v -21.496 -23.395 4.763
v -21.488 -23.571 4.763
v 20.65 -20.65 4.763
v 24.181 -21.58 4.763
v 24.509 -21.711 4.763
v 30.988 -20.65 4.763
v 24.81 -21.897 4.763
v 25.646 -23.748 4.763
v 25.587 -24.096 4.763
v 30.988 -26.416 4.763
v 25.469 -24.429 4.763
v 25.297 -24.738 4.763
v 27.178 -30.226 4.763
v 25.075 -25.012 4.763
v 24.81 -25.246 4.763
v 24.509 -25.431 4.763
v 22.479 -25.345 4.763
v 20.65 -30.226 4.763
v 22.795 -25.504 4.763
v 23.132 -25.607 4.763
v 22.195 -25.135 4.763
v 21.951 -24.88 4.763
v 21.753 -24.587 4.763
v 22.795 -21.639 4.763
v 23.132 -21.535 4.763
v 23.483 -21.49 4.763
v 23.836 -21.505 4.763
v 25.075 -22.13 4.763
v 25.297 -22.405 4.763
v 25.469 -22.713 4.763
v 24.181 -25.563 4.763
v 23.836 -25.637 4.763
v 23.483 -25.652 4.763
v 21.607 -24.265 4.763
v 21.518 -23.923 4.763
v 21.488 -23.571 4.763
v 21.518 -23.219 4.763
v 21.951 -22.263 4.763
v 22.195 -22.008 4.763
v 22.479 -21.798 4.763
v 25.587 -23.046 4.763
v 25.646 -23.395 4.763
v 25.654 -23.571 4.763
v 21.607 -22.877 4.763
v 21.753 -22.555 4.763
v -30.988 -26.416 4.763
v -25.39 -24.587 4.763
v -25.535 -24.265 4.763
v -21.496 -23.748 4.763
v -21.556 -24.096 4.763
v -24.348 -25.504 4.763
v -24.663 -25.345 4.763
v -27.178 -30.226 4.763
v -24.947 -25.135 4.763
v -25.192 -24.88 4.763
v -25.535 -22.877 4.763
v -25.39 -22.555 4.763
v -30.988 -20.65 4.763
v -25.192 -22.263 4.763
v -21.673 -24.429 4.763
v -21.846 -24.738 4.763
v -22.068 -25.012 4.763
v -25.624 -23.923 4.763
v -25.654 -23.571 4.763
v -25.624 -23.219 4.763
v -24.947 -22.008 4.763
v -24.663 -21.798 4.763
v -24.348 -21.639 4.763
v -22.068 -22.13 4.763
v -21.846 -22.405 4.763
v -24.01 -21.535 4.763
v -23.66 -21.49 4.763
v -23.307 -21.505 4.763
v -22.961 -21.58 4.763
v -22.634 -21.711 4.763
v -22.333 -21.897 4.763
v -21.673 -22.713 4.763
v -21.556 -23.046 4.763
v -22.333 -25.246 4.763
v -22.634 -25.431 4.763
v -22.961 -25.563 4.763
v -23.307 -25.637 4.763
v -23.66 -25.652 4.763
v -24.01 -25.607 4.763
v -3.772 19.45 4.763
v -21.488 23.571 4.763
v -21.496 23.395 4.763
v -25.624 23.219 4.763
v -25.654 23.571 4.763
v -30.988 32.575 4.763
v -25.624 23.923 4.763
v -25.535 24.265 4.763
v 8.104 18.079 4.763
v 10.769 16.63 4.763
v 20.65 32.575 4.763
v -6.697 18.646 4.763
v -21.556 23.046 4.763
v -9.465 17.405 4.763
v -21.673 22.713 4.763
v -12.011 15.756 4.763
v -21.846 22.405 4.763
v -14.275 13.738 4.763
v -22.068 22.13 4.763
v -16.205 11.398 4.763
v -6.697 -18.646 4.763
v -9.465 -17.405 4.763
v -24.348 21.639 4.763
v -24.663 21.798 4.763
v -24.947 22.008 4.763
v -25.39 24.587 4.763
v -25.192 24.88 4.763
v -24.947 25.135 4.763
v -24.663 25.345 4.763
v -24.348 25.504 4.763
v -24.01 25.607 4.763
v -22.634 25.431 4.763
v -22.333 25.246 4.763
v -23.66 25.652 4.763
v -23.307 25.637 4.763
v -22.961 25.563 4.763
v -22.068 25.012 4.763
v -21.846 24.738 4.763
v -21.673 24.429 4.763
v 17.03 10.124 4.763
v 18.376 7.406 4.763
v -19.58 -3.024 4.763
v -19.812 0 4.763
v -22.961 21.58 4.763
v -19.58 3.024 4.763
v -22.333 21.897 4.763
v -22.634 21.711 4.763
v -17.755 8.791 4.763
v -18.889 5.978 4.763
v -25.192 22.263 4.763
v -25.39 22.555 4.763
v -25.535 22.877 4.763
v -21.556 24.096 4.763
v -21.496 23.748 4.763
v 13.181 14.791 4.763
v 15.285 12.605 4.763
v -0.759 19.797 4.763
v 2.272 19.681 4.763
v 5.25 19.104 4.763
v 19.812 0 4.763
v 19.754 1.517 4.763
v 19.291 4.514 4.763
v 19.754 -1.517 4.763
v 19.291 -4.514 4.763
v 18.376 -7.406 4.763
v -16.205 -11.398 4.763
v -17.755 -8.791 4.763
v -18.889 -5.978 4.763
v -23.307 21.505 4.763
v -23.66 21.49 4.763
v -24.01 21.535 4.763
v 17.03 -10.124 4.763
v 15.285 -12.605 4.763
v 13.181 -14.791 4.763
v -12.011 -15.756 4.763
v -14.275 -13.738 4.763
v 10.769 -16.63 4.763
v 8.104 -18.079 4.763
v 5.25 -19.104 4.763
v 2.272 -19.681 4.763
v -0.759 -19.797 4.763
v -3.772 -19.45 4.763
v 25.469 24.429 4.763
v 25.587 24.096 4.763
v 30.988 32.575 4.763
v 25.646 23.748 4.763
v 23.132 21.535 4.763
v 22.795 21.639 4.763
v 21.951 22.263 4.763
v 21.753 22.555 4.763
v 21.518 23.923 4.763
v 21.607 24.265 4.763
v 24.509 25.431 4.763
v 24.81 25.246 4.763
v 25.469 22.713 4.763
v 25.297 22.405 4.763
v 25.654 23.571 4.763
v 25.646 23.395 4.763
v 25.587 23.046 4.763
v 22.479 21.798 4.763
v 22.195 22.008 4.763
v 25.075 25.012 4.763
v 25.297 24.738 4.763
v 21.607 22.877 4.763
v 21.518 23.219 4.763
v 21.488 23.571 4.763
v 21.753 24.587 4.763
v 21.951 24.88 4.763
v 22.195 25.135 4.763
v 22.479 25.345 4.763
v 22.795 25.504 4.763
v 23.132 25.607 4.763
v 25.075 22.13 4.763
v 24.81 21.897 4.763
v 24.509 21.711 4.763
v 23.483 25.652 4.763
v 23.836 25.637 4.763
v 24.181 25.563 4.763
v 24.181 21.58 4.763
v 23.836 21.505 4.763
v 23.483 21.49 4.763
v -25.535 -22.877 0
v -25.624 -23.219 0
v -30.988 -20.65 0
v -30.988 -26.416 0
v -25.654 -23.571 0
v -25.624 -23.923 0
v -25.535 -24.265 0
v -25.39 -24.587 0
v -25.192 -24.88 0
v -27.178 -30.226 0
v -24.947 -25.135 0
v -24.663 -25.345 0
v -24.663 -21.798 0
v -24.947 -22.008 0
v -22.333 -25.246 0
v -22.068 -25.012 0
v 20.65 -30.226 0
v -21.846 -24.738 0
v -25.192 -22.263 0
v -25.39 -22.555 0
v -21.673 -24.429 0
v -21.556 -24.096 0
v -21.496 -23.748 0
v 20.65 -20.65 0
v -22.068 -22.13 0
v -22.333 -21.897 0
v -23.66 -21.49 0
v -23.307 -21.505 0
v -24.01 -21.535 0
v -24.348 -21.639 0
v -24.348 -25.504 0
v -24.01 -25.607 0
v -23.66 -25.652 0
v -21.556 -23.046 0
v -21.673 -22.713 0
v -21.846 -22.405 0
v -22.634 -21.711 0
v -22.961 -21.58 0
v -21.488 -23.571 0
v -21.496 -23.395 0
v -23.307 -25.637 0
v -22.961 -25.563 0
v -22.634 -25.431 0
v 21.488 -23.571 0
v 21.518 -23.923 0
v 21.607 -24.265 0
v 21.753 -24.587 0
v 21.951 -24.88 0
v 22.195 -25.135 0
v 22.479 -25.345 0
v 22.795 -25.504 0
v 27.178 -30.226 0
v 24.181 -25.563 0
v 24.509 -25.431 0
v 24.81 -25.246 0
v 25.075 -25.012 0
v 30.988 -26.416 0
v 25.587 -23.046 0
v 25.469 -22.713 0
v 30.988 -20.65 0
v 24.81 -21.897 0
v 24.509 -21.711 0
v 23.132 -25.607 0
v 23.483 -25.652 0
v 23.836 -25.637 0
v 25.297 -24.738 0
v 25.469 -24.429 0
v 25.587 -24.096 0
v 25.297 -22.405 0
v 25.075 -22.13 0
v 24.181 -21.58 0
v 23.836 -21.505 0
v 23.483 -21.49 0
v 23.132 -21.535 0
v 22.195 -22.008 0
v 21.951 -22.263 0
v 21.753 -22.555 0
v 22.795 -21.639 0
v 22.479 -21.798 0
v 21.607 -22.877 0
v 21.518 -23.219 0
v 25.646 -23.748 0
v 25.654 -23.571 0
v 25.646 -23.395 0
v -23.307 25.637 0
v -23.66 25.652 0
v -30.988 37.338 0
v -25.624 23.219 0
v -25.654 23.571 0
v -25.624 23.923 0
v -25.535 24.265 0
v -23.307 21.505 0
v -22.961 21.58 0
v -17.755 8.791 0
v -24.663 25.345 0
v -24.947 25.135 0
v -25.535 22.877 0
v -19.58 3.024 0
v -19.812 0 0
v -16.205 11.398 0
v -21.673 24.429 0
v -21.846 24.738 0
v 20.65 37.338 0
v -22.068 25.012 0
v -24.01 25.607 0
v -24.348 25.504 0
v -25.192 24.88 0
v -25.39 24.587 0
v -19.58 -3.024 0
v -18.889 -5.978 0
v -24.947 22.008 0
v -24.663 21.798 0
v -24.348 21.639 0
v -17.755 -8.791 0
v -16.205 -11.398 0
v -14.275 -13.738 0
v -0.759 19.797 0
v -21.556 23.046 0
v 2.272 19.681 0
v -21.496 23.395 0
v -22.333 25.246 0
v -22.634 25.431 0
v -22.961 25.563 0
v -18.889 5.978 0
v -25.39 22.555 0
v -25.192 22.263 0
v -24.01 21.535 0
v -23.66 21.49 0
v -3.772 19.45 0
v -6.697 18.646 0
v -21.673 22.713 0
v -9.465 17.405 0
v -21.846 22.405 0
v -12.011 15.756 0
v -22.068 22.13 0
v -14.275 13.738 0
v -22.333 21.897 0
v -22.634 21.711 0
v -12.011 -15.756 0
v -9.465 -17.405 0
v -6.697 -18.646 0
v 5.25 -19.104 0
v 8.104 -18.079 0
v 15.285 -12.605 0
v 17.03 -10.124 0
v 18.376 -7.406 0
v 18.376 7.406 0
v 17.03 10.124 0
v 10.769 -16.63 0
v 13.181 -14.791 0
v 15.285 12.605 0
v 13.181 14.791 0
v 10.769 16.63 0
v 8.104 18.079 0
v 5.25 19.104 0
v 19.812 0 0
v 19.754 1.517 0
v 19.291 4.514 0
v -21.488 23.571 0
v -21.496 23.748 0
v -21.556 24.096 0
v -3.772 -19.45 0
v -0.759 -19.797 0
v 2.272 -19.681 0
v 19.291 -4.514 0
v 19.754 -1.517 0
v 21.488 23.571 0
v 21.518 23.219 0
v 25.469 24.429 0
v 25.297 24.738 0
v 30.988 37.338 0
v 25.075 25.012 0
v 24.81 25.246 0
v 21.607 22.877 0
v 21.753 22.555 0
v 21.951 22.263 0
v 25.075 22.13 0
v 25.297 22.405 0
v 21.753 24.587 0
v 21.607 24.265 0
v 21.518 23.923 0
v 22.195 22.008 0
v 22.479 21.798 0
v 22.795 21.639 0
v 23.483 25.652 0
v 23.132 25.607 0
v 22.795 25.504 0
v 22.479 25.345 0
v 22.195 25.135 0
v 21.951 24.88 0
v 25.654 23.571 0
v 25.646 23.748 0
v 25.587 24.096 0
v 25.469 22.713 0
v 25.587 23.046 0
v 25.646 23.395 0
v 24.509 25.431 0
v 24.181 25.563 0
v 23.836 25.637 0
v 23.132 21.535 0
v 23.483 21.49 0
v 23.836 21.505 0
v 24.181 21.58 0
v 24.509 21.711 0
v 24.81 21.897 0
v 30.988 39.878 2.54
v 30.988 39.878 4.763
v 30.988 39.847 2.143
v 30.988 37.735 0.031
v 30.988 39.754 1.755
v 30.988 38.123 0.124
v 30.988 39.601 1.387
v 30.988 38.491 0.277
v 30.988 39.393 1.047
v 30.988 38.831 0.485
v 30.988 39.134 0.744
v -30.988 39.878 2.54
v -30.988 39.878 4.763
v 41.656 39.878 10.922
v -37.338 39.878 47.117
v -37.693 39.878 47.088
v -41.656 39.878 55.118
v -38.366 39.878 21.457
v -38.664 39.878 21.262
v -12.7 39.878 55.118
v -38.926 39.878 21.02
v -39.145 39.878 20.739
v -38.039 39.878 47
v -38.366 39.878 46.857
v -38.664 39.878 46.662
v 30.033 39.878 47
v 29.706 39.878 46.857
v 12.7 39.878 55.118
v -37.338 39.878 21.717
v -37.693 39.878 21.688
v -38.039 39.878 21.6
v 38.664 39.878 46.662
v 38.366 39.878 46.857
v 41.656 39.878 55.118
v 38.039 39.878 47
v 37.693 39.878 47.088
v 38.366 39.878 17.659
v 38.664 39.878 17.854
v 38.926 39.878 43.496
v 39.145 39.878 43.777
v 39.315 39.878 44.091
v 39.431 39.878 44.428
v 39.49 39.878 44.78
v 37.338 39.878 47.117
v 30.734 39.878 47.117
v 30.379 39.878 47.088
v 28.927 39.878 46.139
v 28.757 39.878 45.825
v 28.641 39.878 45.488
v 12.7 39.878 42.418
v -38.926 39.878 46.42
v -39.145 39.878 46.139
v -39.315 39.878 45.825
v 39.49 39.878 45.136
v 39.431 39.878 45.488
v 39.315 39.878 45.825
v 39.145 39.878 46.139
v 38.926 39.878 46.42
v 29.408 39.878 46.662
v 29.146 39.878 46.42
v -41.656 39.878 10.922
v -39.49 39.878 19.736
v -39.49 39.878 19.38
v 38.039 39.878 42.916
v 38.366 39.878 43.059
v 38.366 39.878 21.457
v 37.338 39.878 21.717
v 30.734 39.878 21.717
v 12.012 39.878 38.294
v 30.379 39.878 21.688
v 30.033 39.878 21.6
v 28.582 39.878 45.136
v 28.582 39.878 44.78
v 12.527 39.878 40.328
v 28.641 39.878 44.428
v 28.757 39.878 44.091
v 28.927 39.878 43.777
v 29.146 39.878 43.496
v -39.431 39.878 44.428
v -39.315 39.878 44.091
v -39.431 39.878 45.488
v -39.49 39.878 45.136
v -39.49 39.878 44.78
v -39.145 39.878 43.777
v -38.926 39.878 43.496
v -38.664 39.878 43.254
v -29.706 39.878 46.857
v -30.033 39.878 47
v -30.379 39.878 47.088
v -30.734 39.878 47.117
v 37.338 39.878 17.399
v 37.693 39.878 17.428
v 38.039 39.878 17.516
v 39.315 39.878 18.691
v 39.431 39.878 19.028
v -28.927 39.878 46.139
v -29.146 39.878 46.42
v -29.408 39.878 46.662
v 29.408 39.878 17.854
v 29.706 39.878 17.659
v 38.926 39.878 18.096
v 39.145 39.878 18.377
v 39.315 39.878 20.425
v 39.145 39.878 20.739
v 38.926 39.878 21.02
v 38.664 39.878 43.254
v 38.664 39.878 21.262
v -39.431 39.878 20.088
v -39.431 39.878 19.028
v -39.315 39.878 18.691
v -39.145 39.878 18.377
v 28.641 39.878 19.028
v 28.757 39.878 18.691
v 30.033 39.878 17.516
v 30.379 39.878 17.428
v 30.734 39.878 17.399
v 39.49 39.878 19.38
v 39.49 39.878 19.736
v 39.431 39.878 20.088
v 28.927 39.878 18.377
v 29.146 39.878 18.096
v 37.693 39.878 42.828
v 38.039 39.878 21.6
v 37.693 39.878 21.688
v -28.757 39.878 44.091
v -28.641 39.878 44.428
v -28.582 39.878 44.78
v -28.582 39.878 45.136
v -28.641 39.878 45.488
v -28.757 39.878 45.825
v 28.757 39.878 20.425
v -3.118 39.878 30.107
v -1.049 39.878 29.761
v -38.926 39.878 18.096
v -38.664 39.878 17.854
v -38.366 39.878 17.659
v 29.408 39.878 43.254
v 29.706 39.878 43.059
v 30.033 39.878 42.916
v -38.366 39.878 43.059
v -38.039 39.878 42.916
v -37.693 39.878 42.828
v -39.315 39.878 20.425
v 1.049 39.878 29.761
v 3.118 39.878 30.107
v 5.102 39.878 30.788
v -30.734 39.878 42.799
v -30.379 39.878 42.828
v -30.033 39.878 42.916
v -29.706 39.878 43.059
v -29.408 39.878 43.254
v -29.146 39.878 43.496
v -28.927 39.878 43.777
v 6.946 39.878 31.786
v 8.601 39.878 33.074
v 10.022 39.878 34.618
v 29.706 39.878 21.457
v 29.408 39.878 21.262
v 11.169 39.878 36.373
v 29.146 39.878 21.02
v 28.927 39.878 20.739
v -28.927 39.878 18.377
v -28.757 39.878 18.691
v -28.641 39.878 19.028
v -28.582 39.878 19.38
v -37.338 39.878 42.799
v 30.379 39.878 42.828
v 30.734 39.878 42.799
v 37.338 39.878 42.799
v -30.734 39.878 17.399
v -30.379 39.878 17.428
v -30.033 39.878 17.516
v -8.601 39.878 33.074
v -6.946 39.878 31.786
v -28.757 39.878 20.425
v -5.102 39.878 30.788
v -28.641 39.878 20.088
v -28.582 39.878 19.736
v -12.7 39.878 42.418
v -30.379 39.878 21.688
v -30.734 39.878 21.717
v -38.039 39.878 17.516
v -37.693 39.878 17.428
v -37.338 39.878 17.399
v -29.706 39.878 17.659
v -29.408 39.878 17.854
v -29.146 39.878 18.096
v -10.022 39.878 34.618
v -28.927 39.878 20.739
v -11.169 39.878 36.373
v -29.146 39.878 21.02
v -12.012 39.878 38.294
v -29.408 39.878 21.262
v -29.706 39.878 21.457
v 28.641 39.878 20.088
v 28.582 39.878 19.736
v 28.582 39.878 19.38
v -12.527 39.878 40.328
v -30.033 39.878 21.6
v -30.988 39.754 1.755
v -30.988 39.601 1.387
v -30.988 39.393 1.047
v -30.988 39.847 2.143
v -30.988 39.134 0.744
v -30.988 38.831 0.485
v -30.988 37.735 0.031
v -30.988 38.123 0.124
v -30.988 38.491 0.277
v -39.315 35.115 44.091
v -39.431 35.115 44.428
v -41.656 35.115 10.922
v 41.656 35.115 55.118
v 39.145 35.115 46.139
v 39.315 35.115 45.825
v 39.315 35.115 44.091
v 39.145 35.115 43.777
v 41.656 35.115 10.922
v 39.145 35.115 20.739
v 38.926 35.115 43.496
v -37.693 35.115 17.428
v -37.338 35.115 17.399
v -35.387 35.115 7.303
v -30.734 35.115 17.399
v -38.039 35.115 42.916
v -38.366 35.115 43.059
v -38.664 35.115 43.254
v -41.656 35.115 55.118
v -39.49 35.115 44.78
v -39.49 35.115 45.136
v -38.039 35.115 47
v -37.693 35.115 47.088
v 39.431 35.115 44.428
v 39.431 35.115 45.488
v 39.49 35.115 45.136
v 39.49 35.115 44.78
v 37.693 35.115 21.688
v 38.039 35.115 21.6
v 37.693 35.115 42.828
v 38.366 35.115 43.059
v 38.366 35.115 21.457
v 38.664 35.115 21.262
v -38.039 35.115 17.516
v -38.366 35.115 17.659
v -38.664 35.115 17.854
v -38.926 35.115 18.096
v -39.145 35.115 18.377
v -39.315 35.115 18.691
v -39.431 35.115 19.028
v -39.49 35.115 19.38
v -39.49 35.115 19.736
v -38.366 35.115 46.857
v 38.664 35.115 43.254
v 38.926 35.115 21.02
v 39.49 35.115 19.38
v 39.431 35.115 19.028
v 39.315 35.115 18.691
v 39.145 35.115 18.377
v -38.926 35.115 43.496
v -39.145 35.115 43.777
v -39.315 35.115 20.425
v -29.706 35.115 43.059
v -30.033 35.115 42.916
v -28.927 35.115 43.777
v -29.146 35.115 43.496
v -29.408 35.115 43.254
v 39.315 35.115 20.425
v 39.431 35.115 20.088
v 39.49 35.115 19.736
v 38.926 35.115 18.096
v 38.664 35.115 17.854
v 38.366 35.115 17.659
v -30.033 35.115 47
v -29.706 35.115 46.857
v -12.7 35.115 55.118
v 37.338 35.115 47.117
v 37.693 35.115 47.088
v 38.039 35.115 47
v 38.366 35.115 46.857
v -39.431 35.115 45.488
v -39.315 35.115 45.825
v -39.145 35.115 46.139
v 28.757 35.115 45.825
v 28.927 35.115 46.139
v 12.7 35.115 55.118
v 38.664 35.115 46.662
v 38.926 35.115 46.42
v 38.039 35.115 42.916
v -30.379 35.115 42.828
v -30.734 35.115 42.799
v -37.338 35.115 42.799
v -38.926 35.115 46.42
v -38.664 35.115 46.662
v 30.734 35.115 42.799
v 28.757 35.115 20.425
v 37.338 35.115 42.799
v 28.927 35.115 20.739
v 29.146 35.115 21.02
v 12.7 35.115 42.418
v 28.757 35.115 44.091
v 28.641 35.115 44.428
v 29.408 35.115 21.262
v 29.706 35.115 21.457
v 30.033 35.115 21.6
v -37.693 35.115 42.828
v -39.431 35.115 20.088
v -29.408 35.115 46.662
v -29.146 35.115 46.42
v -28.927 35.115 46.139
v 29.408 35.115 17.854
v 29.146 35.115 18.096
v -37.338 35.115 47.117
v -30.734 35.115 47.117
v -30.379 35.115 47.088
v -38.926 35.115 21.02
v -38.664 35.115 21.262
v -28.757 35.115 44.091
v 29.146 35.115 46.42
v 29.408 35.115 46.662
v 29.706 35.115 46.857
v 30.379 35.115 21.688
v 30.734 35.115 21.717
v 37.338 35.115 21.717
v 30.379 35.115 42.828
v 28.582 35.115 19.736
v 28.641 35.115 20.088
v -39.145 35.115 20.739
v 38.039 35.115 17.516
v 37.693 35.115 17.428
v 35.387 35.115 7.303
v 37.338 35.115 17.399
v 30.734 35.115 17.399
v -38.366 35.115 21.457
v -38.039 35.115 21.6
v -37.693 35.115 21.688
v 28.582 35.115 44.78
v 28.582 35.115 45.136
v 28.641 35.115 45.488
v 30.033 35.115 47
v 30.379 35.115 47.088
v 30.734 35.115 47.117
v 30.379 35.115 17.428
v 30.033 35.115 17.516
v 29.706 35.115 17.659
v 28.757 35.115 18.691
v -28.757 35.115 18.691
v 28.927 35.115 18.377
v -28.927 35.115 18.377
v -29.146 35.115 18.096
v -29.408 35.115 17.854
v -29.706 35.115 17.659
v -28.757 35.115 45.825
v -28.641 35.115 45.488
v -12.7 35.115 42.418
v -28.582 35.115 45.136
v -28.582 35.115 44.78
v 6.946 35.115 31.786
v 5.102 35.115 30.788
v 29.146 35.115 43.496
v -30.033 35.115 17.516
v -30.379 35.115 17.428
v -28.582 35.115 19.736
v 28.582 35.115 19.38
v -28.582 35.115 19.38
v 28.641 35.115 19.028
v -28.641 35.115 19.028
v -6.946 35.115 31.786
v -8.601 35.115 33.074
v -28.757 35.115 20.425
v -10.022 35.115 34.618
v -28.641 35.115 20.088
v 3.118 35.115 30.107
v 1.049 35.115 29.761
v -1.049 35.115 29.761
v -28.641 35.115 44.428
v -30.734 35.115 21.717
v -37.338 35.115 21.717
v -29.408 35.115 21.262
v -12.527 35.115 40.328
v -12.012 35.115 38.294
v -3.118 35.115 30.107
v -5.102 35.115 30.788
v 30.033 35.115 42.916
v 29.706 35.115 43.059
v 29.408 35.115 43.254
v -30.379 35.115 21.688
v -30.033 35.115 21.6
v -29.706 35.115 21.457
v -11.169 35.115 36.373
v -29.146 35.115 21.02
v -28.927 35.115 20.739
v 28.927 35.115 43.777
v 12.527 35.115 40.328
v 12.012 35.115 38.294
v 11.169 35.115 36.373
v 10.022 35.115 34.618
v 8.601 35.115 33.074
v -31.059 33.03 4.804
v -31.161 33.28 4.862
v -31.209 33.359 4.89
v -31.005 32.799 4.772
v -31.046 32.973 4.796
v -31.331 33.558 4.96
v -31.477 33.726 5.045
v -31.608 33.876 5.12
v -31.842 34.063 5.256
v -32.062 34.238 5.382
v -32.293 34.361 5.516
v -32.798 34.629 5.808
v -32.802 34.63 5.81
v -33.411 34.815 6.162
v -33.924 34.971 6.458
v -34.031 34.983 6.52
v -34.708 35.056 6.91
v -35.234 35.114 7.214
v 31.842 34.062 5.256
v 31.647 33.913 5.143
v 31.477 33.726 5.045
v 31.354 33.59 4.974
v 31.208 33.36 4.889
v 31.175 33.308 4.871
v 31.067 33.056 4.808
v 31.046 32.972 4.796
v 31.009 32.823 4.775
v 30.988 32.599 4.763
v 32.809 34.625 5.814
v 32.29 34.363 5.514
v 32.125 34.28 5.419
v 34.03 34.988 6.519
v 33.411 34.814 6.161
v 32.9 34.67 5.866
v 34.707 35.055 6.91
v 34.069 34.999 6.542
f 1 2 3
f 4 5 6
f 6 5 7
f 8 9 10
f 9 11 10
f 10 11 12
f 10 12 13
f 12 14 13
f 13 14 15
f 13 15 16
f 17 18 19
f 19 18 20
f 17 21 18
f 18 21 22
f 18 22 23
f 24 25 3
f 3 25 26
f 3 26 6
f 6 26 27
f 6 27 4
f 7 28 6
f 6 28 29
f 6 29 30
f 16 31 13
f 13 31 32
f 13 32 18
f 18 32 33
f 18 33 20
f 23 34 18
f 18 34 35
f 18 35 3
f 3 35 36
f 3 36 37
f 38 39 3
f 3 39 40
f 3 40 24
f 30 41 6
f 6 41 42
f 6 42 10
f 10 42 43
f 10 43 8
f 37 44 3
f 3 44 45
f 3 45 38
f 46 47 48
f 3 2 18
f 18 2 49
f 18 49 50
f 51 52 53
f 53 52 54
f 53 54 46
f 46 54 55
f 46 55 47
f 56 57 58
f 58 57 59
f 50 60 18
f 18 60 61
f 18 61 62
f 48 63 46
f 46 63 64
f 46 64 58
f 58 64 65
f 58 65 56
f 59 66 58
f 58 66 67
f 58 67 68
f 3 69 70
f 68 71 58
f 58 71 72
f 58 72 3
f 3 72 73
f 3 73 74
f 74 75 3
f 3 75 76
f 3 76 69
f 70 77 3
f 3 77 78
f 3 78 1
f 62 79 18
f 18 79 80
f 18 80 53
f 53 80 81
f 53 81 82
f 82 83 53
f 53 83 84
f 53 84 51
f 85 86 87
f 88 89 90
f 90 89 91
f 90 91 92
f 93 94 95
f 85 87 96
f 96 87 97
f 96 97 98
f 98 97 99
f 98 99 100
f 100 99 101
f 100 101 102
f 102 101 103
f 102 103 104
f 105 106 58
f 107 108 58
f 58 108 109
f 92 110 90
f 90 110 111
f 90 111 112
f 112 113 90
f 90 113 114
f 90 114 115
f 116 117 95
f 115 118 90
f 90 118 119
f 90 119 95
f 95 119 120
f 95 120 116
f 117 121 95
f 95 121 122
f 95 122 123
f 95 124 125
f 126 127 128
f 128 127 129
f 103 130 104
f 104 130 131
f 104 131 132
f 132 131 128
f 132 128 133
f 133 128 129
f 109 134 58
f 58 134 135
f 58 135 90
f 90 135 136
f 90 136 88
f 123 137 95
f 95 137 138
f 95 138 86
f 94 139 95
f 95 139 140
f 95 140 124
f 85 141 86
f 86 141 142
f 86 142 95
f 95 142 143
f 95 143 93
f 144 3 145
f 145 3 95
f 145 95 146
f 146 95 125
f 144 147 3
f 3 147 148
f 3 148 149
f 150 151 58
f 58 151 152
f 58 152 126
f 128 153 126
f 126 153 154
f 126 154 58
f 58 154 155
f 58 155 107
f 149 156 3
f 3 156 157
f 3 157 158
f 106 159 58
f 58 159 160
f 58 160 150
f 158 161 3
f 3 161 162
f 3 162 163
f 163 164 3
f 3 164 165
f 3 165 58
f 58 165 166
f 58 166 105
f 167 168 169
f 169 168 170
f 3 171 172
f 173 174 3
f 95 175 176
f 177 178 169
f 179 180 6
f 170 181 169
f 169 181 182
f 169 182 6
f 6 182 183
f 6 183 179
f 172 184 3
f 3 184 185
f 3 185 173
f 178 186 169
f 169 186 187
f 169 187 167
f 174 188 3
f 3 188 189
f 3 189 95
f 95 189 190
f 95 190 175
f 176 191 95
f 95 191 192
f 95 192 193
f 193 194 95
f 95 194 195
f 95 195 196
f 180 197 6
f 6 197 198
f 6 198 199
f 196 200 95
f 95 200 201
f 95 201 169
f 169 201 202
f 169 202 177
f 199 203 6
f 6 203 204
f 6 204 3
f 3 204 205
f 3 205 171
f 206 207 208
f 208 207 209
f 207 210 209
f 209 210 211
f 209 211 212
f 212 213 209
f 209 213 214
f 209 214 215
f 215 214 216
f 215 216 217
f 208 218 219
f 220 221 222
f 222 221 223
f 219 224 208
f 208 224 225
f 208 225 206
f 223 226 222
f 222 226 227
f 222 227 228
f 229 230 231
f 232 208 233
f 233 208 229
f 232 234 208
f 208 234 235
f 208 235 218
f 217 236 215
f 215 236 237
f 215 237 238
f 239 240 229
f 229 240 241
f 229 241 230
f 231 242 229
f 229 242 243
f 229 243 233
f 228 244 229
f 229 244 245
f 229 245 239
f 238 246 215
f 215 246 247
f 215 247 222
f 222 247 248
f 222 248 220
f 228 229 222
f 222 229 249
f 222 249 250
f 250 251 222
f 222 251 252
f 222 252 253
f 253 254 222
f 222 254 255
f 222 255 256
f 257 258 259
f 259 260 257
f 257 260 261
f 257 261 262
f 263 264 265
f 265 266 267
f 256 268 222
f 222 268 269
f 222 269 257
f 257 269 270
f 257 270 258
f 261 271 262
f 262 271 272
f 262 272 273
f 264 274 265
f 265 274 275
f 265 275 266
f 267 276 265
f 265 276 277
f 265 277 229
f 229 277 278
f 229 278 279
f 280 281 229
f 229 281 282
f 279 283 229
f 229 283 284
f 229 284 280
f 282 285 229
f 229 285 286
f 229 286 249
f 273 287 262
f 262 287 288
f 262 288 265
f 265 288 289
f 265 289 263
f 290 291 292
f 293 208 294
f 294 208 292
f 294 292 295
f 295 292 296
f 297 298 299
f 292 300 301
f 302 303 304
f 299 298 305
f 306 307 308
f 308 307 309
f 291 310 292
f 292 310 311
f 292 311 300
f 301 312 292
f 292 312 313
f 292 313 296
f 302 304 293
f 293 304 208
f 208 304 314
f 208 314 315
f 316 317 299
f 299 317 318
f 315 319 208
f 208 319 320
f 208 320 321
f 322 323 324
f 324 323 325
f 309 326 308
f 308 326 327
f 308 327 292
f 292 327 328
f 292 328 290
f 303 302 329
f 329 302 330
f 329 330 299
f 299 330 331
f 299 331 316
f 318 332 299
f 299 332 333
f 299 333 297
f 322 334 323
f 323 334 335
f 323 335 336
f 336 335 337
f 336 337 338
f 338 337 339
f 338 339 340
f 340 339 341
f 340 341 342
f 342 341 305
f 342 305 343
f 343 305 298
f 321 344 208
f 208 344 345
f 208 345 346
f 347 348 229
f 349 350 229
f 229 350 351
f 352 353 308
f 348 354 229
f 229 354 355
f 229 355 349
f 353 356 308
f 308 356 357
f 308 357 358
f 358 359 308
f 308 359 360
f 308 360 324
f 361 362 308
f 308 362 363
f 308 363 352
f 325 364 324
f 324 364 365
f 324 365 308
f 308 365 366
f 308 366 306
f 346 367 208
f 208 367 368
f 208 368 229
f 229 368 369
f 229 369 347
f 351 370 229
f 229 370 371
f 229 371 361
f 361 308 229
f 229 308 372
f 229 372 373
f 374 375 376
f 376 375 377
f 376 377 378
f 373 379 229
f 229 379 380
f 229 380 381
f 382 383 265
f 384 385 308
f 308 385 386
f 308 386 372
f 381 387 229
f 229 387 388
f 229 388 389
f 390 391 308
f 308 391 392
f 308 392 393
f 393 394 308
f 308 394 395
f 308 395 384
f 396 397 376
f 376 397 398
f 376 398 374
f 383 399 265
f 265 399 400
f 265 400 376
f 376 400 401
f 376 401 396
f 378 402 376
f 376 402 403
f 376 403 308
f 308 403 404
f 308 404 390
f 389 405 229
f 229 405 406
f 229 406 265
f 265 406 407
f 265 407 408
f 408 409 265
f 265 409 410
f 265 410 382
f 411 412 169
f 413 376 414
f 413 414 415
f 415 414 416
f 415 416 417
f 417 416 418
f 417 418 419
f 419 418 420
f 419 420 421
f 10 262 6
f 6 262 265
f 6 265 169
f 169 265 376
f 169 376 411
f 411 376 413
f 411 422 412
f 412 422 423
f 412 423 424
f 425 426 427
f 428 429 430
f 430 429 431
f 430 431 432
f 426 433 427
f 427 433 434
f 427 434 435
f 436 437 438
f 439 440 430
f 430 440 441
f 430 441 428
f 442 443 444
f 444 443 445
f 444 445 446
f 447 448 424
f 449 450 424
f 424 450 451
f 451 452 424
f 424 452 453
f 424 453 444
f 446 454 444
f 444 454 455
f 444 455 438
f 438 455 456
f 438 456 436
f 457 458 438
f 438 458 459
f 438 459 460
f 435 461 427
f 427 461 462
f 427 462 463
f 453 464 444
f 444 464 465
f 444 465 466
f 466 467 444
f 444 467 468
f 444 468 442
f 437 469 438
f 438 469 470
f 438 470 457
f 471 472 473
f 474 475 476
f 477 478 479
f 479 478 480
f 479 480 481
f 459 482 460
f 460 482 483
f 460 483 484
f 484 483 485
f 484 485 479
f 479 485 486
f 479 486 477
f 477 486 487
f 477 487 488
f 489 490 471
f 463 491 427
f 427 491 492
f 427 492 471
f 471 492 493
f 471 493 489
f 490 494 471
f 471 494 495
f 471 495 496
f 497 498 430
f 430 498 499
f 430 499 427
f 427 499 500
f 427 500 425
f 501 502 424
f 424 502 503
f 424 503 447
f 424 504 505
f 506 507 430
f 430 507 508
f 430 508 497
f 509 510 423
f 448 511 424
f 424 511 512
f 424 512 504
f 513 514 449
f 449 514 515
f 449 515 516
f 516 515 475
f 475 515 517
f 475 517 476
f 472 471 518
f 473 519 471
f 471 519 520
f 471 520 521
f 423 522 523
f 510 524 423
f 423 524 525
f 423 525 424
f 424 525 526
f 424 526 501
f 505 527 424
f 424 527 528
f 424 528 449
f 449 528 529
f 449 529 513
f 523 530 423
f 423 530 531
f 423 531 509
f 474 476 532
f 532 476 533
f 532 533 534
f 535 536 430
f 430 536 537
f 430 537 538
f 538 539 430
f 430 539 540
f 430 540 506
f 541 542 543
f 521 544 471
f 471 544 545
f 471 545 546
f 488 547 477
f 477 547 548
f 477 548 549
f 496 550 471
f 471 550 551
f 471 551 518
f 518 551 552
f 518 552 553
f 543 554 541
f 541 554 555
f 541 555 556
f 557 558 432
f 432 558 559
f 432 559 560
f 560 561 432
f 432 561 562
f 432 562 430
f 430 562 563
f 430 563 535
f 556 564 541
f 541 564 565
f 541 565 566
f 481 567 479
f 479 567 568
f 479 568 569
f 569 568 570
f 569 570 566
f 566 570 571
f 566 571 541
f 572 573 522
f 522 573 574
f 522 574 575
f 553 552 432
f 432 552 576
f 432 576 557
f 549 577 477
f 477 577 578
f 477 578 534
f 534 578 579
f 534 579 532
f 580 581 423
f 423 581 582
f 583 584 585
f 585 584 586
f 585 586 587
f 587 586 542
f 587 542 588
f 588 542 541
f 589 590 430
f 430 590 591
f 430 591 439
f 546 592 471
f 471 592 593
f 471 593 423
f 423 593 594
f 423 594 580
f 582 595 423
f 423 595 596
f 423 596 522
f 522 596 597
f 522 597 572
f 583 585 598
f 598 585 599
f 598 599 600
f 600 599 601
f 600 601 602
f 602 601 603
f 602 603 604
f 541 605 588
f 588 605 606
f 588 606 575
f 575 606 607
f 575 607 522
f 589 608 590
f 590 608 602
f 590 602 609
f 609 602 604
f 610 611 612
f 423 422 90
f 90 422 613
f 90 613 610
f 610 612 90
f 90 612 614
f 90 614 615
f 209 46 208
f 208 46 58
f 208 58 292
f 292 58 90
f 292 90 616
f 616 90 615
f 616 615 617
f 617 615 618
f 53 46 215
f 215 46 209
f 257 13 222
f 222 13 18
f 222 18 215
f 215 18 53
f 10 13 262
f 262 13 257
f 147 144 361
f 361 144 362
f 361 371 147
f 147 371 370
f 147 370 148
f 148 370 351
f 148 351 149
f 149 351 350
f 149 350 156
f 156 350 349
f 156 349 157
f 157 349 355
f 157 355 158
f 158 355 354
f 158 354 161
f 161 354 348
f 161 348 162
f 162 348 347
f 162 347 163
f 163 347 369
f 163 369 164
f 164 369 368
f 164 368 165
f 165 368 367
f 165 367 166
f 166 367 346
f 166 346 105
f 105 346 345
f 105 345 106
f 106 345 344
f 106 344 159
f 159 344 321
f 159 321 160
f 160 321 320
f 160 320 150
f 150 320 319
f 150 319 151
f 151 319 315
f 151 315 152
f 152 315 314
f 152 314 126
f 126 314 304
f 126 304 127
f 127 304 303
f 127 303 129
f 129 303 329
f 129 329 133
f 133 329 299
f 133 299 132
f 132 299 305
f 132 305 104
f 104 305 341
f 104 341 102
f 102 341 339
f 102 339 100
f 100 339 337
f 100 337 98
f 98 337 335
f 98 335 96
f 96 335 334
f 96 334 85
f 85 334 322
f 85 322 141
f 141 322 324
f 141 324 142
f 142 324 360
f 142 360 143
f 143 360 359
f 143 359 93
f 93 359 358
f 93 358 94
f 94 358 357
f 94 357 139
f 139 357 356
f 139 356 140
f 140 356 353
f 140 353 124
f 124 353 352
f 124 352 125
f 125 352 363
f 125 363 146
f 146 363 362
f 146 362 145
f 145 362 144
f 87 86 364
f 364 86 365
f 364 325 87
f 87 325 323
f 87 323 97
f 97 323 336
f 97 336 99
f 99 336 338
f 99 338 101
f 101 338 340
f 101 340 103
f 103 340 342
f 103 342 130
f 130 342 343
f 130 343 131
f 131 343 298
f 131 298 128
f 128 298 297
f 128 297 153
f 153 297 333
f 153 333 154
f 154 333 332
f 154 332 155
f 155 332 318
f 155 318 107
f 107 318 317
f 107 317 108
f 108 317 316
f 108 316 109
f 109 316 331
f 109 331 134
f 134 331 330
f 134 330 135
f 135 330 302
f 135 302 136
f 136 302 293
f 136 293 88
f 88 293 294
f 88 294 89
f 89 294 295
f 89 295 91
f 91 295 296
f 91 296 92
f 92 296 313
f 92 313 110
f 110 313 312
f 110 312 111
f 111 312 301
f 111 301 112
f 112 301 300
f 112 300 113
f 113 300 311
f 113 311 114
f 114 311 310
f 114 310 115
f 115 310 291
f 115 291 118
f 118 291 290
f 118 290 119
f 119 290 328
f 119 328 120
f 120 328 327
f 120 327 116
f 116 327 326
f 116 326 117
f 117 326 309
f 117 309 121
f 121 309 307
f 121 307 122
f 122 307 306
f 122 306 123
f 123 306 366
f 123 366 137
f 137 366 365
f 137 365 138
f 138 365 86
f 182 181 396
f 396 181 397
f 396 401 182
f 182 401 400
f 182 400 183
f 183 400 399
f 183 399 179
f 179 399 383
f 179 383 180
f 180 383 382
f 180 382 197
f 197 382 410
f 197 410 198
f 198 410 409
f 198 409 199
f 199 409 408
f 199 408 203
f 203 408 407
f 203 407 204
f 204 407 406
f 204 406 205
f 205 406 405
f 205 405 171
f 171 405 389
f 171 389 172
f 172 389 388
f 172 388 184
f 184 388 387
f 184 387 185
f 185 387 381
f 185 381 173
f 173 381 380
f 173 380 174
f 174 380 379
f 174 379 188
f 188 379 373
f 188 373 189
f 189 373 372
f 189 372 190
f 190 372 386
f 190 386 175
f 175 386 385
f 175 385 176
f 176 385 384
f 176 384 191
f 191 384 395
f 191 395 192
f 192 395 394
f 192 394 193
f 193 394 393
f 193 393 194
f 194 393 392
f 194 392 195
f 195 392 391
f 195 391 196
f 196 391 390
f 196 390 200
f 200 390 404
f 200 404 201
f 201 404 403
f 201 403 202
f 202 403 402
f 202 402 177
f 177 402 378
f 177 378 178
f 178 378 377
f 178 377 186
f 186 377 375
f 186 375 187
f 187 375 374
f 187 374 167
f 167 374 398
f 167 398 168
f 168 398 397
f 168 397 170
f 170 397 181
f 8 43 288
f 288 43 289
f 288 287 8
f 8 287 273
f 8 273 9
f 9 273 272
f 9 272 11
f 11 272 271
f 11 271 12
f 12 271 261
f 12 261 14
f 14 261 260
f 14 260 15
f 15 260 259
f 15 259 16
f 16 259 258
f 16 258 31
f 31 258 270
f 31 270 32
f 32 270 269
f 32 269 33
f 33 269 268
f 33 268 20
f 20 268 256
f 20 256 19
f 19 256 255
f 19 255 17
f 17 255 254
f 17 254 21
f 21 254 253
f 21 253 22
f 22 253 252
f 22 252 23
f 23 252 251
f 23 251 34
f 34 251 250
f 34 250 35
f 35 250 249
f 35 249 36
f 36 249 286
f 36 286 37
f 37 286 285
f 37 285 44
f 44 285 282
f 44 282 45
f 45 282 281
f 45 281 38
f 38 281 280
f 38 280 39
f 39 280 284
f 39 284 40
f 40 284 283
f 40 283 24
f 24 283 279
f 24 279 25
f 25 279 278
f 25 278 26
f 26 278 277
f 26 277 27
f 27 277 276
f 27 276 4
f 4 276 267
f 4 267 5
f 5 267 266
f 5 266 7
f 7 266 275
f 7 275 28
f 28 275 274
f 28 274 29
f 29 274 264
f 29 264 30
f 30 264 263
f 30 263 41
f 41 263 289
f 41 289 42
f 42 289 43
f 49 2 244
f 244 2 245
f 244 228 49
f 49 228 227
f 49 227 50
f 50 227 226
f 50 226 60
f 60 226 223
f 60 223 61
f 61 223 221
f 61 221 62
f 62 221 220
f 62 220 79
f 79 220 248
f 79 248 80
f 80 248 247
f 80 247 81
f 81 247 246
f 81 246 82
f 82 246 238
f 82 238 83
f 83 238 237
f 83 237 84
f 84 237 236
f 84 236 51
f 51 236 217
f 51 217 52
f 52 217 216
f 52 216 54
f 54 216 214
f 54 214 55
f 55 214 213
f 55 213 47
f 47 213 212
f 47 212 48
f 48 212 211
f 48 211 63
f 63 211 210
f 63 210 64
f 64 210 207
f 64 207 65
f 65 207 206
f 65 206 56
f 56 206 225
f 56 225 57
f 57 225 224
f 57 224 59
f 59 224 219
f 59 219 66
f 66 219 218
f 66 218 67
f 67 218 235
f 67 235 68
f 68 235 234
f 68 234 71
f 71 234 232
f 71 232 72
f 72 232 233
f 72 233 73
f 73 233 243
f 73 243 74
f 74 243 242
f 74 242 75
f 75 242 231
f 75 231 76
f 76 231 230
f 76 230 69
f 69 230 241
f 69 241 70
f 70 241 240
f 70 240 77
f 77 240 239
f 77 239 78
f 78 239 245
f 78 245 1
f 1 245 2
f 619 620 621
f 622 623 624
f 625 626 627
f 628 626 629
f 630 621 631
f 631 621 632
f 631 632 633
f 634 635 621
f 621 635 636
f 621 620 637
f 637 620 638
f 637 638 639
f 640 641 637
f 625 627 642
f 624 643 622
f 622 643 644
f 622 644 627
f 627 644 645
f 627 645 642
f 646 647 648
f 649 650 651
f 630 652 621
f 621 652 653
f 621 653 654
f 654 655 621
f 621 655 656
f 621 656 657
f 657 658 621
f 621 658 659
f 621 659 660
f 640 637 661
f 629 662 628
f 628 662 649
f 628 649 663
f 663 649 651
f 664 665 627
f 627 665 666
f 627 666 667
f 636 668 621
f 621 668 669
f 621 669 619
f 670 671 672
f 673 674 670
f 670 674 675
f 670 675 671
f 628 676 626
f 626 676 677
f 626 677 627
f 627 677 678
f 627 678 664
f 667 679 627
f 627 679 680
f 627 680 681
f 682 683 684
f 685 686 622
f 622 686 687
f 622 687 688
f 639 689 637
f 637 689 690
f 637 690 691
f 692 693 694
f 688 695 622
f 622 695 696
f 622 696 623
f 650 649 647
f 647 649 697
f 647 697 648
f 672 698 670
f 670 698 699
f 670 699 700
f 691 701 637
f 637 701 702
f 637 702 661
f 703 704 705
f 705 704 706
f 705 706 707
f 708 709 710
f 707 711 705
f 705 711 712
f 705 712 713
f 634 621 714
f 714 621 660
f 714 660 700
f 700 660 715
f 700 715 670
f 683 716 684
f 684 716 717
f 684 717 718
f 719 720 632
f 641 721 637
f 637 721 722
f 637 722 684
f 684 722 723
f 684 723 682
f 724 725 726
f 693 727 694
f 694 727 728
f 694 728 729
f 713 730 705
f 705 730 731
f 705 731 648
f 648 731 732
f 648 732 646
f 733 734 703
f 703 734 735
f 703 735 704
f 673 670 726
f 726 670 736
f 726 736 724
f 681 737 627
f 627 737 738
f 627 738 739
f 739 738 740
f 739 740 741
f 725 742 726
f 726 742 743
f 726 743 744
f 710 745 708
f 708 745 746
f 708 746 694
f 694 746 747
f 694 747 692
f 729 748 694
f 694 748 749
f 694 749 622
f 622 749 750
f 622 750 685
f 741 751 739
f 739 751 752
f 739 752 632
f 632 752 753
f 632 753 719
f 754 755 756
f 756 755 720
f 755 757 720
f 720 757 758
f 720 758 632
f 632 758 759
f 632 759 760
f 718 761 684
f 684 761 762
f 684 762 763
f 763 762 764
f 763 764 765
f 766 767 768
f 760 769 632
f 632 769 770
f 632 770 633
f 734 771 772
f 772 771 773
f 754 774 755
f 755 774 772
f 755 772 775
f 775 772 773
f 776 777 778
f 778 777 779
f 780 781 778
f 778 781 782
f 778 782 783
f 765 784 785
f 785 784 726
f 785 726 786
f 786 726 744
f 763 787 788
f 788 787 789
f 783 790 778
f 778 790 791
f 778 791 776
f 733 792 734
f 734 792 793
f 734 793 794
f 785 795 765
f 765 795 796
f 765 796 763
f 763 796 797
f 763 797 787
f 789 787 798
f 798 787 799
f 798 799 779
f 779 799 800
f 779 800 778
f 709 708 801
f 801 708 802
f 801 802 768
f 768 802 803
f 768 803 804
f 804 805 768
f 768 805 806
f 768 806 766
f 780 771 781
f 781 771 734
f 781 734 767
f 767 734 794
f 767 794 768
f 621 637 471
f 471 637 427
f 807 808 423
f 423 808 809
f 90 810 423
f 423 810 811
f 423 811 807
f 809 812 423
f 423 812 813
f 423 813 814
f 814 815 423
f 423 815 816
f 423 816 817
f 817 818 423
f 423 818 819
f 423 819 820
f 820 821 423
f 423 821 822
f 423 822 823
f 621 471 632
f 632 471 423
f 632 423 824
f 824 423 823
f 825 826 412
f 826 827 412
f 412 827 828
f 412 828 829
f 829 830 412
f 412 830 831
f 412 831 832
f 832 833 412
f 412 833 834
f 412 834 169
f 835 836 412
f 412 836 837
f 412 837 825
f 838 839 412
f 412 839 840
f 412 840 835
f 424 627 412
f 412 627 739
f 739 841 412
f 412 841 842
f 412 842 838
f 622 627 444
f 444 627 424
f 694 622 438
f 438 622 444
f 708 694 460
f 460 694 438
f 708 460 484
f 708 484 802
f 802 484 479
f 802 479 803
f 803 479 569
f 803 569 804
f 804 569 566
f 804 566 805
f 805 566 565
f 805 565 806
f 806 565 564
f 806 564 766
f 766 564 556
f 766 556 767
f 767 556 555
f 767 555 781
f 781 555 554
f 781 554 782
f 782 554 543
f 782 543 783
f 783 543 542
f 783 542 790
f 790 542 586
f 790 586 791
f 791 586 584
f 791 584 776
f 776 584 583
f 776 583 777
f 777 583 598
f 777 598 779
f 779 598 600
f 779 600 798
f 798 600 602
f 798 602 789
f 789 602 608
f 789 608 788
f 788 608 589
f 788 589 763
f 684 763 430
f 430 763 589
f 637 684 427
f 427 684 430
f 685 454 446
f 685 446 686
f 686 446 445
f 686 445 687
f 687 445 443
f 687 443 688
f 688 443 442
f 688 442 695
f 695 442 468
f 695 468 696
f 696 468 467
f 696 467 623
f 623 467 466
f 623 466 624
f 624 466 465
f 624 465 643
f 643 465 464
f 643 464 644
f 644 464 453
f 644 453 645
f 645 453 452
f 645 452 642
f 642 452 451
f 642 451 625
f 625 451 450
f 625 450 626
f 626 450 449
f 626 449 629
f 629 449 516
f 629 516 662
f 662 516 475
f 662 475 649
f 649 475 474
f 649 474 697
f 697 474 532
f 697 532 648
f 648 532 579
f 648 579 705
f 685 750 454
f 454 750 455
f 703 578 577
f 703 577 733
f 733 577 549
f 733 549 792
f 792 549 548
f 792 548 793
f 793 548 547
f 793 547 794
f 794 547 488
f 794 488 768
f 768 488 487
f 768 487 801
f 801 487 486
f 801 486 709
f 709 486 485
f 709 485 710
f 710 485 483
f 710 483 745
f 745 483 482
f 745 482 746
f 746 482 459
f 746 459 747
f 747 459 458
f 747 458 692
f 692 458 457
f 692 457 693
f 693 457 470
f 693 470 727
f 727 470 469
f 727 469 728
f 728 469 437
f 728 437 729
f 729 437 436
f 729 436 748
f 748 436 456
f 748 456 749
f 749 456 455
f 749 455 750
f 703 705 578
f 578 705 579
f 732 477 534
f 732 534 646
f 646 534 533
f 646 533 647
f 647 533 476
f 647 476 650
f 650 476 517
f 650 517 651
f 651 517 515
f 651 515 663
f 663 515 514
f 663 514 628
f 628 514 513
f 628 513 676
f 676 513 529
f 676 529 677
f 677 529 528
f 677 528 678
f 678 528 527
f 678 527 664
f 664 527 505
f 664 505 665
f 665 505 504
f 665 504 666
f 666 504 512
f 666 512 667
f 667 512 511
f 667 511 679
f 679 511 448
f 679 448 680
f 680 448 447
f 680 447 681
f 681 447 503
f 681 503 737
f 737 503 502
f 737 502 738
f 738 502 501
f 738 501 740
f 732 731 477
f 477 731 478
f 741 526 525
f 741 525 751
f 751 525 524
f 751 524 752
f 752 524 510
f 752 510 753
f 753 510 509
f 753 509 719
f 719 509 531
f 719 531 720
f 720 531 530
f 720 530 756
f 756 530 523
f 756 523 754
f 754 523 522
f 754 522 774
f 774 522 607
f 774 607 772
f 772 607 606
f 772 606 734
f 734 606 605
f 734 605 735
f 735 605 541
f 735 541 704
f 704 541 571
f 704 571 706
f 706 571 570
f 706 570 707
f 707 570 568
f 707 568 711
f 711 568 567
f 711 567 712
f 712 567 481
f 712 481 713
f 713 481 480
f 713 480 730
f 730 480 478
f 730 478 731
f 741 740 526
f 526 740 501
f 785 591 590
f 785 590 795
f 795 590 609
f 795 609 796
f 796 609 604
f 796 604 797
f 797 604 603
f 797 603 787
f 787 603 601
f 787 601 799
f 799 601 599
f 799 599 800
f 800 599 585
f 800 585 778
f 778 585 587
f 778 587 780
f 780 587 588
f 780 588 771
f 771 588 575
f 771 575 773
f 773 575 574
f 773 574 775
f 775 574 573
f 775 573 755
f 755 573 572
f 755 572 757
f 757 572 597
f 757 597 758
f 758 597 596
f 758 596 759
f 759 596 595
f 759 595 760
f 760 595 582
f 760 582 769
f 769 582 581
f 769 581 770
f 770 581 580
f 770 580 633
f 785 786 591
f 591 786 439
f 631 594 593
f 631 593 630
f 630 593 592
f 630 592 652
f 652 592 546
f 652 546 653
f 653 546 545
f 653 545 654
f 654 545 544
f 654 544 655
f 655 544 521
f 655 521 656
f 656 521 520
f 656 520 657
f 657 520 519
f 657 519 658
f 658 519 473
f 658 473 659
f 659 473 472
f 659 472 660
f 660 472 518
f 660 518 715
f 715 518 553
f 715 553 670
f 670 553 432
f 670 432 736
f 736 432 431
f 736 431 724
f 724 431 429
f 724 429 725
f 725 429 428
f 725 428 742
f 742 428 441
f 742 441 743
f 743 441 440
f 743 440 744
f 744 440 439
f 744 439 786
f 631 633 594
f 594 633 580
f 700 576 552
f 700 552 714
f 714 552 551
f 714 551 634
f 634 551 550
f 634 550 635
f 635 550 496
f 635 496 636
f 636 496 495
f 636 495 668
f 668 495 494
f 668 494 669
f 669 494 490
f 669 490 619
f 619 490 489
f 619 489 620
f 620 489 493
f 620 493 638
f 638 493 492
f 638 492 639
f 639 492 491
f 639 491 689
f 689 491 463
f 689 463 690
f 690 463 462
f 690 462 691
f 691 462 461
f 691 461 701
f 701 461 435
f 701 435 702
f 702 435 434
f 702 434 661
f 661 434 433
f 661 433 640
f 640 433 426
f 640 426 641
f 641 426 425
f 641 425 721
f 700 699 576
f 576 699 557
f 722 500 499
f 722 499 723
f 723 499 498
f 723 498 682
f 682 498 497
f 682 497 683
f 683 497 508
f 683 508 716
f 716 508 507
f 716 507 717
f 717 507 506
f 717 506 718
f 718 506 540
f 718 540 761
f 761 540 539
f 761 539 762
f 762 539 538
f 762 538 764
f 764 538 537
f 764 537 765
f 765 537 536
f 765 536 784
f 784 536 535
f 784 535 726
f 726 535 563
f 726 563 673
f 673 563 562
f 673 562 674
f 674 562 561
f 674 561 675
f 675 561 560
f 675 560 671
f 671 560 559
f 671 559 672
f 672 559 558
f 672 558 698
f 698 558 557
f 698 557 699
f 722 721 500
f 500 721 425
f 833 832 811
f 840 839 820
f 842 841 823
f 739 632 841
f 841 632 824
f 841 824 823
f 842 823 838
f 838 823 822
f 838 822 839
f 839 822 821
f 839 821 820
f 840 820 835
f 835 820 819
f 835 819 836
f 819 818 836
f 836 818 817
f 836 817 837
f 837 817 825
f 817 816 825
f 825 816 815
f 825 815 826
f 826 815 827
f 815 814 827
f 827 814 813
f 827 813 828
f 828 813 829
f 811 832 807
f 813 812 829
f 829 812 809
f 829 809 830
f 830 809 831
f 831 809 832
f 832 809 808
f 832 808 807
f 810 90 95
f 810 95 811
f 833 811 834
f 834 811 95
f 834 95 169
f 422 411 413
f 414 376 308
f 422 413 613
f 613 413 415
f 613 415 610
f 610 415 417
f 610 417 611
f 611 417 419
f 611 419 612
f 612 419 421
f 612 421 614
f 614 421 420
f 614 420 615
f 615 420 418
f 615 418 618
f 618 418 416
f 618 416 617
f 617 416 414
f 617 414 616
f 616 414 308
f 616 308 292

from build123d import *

# Parameters (mm, degrees)
SKETCH1_R           = 19.812
SKETCH1_R_2         = 2.0828
BOSS_EXTRUDE1_DEPTH = 4.7625
BOSS_EXTRUDE2_DEPTH = 4.7625
FILLET1_R           = 2.54


with BuildPart() as part:
    # Sketch1 → Boss-Extrude1 (new body)
    with BuildSketch(Plane.XY):
        Polygon((-27.178, -30.226), (27.178, -30.226), (30.988, -26.416), (30.988, 39.878), (-30.988, 39.878), (-30.988, -26.416), align=None)
        with Locations(Location((0, 0, 0), (0, 0, 180))):
            Circle(SKETCH1_R, mode=Mode.SUBTRACT)
        with Locations(Location((-23.5712, 23.5712, 0), (0, 0, 180))):
            Circle(SKETCH1_R_2, mode=Mode.SUBTRACT)
        with Locations(Location((23.5712, 23.5712, 0), (0, 0, 180))):
            Circle(SKETCH1_R_2, mode=Mode.SUBTRACT)
        with Locations(Location((23.5712, -23.5712, 0), (0, 0, 180))):
            Circle(SKETCH1_R_2, mode=Mode.SUBTRACT)
        with Locations(Location((-23.5712, -23.5712, 0), (0, 0, 180))):
            Circle(SKETCH1_R_2, mode=Mode.SUBTRACT)
    extrude(amount=BOSS_EXTRUDE1_DEPTH)

    # Sketch4 → Boss-Extrude2 (add)
    with BuildSketch(Plane(origin=(0, 39.878, 0), x_dir=(-1, 0, 0), z_dir=(0, 1, 0))):
        with BuildLine():
            Line((12.7, 55.118), (41.656, 55.118))
            Line((41.656, 55.118), (41.656, 10.921672672))
            Line((41.656, 10.921672672), (30.988, 4.7625))
            Line((30.988, 4.7625), (30.988, 0))
            Line((30.988, 0), (-30.988, 0))
            Line((-30.988, 0), (-30.988, 4.7625))
            Line((-30.988, 4.7625), (-41.656, 10.921672672))
            Line((-41.656, 10.921672672), (-41.656, 55.118))
            Line((-41.656, 55.118), (-12.7, 55.118))
            Line((-12.7, 55.118), (-12.7, 42.418))
            ThreePointArc((-12.7, 42.418), (0, 29.718), (12.7, 42.418))
            Line((12.7, 42.418), (12.7, 55.118))
        make_face()
        with BuildLine():
            Line((-30.734, 47.117), (-37.338, 47.117))
            ThreePointArc((-37.338, 47.117), (-39.497, 44.958), (-37.338, 42.799))
            Line((-37.338, 42.799), (-30.734, 42.799))
            ThreePointArc((-30.734, 42.799), (-28.575, 44.958), (-30.734, 47.117))
        make_face(mode=Mode.SUBTRACT)
        with BuildLine():
            Line((-30.734, 21.717), (-37.338, 21.717))
            ThreePointArc((-37.338, 21.717), (-39.497, 19.558), (-37.338, 17.399))
            Line((-37.338, 17.399), (-30.734, 17.399))
            ThreePointArc((-30.734, 17.399), (-28.575, 19.558), (-30.734, 21.717))
        make_face(mode=Mode.SUBTRACT)
        with BuildLine():
            Line((37.338, 17.399), (30.734, 17.399))
            ThreePointArc((30.734, 17.399), (28.575, 19.558), (30.734, 21.717))
            Line((30.734, 21.717), (37.338, 21.717))
            ThreePointArc((37.338, 21.717), (39.497, 19.558), (37.338, 17.399))
        make_face(mode=Mode.SUBTRACT)
        with BuildLine():
            Line((37.338, 42.799), (30.734, 42.799))
            ThreePointArc((30.734, 42.799), (28.575, 44.958), (30.734, 47.117))
            Line((30.734, 47.117), (37.338, 47.117))
            ThreePointArc((37.338, 47.117), (39.497, 44.958), (37.338, 42.799))
        make_face(mode=Mode.SUBTRACT)
    extrude(amount=-BOSS_EXTRUDE2_DEPTH)

    # Fillet1
    fillet1_edges = [part.edges().sort_by_distance(p)[0] for p in [
        (0, 35.1155, 4.7625),
        (0, 39.878, 0),
    ]]
    fillet(fillet1_edges, radius=FILLET1_R)


solid = part.part
